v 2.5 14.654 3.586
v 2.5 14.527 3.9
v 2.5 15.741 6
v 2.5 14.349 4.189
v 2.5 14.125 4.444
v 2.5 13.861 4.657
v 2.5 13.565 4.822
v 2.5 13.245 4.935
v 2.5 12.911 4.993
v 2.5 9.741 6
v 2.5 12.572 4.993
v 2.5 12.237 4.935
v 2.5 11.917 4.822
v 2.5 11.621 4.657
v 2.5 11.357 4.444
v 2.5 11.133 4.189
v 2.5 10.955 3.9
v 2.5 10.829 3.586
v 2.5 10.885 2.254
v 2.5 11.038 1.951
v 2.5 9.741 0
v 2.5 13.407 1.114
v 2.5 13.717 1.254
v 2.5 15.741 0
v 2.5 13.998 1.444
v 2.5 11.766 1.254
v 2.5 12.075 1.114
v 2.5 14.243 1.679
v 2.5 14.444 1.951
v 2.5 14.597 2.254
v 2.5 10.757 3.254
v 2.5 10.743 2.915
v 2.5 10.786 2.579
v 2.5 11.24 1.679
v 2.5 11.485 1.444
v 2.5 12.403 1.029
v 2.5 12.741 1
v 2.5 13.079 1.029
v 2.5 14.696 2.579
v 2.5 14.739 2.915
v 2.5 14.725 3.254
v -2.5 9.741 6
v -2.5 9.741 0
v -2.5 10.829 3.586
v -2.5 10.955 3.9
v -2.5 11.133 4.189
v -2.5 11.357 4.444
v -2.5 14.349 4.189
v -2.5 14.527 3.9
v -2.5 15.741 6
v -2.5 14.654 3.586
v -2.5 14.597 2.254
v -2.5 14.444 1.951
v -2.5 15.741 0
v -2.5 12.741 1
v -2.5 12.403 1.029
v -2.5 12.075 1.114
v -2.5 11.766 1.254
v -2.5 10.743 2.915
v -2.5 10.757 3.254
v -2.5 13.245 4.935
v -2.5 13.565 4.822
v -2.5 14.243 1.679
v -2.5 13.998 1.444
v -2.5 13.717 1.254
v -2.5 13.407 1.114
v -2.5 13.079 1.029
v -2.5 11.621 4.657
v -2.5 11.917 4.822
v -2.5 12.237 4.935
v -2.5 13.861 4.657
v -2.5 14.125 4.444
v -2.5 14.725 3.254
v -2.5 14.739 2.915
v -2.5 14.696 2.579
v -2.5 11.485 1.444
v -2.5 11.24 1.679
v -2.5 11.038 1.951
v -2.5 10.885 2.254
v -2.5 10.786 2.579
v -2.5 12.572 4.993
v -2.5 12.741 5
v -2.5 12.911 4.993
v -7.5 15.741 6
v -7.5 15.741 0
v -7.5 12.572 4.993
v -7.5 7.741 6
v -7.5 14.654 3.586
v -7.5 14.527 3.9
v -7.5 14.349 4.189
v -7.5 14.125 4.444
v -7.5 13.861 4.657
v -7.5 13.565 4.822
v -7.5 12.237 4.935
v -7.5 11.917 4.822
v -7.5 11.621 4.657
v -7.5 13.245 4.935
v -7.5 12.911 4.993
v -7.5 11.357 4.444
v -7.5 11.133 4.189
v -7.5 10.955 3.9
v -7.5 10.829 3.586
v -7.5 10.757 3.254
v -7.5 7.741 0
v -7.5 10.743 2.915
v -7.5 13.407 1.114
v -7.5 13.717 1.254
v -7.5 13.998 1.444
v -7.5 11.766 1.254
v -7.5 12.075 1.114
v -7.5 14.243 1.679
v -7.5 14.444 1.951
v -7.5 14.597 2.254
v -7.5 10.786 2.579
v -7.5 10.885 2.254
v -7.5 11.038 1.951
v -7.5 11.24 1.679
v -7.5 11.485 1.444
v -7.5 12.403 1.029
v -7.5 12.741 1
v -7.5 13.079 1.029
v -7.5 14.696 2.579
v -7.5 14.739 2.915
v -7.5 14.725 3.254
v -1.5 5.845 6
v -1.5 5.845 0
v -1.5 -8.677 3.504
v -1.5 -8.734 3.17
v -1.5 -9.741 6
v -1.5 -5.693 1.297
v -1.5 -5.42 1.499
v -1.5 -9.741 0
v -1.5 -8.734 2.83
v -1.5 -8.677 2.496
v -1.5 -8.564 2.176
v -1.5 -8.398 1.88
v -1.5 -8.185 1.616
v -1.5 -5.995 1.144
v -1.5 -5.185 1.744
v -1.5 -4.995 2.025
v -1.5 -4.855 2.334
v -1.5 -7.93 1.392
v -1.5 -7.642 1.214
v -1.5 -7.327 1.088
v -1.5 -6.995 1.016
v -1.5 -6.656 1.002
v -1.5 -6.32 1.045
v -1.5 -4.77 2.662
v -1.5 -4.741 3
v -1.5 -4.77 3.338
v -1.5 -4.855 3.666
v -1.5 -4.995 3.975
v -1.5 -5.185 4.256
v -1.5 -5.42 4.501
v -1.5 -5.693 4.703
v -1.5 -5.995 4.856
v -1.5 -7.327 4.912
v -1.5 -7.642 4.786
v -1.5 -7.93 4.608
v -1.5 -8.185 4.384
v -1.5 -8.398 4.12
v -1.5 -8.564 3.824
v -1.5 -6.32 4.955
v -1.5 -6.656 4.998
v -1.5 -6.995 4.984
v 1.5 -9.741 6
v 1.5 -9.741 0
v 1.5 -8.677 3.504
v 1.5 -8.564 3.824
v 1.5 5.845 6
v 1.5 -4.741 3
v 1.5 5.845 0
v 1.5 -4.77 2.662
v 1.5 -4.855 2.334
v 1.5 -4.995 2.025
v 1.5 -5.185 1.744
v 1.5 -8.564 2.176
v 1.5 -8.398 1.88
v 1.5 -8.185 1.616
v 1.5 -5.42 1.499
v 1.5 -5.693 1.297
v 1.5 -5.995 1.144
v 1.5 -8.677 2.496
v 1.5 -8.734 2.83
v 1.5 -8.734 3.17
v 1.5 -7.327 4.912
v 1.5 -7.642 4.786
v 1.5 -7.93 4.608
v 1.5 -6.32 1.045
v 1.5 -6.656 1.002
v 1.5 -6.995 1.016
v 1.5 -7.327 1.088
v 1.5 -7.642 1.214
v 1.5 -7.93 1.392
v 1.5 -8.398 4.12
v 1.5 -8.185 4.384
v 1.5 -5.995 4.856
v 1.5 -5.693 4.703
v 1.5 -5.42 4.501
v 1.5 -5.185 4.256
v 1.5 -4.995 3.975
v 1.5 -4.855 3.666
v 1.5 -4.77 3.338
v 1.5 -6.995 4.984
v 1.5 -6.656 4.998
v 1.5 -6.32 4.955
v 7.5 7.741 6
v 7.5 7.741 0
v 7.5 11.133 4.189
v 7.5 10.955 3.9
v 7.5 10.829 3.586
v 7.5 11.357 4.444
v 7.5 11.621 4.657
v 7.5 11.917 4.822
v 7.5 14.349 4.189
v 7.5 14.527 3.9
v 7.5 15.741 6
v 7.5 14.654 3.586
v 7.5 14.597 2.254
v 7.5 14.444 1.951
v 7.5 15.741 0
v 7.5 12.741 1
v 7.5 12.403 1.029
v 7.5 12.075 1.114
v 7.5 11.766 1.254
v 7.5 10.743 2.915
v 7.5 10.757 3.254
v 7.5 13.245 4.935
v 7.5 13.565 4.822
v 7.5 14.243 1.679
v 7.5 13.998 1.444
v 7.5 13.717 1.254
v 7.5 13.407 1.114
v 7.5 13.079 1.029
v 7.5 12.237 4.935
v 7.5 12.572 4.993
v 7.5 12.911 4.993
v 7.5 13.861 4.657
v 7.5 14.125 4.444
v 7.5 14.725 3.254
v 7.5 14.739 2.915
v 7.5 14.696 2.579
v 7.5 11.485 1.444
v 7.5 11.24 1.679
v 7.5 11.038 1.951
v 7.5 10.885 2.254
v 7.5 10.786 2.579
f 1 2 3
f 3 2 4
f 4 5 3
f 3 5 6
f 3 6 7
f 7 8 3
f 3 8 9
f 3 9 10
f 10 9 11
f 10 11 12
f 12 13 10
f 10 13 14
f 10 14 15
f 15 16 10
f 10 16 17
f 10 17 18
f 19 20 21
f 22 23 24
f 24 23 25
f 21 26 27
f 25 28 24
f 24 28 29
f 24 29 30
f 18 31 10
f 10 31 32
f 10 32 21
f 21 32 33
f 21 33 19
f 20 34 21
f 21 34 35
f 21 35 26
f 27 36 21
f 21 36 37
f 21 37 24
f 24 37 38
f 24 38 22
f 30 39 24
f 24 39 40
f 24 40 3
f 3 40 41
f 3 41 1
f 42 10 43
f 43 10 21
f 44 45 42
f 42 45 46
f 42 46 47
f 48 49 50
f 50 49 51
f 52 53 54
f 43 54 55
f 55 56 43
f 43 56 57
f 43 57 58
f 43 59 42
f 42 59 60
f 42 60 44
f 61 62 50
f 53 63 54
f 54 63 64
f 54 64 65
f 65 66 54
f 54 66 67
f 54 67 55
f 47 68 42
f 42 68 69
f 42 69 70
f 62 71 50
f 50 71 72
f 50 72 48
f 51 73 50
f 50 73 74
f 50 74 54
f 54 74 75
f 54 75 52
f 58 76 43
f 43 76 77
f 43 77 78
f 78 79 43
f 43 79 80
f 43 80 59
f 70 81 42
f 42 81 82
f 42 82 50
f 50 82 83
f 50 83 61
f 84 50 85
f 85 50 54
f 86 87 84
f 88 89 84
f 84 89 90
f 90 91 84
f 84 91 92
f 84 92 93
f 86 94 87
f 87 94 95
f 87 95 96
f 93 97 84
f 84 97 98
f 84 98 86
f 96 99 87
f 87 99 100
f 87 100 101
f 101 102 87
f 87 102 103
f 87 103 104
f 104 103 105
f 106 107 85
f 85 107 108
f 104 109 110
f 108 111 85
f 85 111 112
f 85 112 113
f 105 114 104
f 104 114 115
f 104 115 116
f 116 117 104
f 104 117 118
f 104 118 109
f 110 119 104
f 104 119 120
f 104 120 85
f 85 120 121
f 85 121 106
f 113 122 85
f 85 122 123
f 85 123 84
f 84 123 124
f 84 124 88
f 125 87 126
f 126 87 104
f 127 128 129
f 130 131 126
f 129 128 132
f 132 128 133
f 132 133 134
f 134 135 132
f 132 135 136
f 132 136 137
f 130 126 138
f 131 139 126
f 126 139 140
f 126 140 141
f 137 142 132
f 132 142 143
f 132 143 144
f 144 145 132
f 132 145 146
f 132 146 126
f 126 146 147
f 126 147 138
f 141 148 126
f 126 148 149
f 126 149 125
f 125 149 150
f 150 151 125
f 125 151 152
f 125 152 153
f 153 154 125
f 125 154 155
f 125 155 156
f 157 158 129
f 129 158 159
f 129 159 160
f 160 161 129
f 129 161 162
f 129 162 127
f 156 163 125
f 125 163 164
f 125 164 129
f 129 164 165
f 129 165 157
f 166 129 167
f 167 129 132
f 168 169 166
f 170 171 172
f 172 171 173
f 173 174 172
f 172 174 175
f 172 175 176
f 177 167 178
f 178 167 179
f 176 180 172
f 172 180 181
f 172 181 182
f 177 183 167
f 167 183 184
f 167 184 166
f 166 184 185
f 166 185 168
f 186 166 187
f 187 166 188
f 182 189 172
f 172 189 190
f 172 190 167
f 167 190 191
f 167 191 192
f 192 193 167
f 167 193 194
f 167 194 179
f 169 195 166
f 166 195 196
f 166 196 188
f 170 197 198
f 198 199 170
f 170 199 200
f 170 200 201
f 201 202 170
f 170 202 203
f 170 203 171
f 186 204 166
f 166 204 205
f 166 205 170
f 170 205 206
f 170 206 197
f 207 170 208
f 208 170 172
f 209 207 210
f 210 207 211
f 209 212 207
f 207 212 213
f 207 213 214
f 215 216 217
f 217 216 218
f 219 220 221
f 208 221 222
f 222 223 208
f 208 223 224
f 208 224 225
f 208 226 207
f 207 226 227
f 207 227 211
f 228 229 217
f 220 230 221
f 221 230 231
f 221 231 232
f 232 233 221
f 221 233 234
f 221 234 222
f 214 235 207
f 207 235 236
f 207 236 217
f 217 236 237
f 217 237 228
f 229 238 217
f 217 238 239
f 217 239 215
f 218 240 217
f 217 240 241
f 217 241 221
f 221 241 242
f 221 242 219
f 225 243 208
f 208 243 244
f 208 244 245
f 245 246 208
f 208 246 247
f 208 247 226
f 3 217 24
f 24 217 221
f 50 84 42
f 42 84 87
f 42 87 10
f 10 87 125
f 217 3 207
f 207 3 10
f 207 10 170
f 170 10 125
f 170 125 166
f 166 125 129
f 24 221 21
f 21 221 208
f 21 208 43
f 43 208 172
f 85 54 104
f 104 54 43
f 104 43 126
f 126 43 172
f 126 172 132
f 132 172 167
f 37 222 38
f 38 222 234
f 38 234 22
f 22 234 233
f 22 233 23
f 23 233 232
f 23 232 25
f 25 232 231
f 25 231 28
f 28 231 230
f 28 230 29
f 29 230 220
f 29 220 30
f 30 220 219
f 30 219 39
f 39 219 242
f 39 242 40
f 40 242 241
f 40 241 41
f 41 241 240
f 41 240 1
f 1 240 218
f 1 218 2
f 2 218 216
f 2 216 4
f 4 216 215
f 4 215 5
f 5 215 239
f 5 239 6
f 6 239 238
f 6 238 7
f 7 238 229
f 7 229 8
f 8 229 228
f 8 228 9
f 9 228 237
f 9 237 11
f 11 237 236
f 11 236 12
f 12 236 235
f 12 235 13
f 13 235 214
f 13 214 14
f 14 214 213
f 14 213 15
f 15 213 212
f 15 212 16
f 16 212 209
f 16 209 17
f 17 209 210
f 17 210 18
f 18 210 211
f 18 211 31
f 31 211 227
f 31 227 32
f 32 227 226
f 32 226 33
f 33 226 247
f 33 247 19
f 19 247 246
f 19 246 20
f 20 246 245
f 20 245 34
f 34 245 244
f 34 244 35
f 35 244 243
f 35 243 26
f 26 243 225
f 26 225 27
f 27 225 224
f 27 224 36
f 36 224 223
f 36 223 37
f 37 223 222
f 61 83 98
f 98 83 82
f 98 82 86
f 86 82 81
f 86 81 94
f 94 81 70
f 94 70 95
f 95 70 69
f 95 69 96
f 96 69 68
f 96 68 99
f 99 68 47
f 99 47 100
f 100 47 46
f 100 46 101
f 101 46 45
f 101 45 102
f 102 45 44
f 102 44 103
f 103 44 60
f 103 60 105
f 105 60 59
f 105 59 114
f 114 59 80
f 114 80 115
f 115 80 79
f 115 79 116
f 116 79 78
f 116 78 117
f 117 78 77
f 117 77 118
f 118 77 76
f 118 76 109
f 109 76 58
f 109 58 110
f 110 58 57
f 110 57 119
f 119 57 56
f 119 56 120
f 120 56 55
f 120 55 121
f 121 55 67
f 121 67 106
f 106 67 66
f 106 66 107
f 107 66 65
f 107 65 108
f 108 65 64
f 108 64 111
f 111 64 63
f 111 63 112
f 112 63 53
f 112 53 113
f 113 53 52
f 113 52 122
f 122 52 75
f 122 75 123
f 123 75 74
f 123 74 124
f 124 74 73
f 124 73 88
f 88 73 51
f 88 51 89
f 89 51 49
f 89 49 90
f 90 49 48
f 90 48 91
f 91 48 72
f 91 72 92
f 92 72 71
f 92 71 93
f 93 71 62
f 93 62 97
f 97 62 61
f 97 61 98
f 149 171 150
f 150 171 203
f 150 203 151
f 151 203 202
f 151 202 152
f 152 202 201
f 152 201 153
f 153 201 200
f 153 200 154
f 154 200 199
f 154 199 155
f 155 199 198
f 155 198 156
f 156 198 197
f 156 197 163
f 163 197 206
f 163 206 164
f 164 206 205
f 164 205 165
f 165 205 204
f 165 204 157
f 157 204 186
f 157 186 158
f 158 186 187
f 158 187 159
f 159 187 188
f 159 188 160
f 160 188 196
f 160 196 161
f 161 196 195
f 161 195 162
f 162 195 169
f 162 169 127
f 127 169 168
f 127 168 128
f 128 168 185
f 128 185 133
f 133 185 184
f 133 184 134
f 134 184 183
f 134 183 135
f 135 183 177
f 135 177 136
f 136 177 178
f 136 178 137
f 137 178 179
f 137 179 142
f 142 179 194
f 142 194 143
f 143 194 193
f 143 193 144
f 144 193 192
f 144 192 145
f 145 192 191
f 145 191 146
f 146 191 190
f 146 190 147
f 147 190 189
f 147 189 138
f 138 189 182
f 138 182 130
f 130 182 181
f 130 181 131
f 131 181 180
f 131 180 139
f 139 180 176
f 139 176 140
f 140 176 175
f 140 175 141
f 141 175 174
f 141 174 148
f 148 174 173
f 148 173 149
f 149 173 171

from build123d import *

# Parameters (mm, degrees)
BOSS_EXTRU_1_DEPTH      = 6
ENL_V_MAT_EXTRU_1_REACH = 24.556
ESQUISSE2_R             = 2
ESQUISSE3_R             = 2
ENL_V_MAT_EXTRU_2_DEPTH = 3


with BuildPart() as part:
    # Esquisse1 → Boss.-Extru.1 (new body)
    with BuildSketch(Plane.XY):
        Polygon((-7.5, 7.741189715), (-1.5, 5.844713829), (-1.5, -9.741189715), (1.5, -9.741189715), (1.5, 5.844713829), (7.5, 7.741189715), (7.5, 15.741189715), (2.5, 15.741189715), (2.5, 9.741189715), (-2.5, 9.741189715), (-2.5, 15.741189715), (-7.5, 15.741189715), align=None)
    extrude(amount=BOSS_EXTRU_1_DEPTH)

    # Enlèv. mat.-Extru.1: up to this face of the body (flat: up to its plane)
    enl_v_mat_extru_1_end = Plane(part.part.faces().sort_by_distance((-7.5, 11.741189715, 3))[0])
    # Esquisse2 → Enlèv. mat.-Extru.1 (cut, up to the picked face)
    with BuildSketch(Plane(origin=(7.5, 0, 0), x_dir=(0, 0, -1), z_dir=(1, 0, 0)), mode=Mode.PRIVATE) as enl_v_mat_extru_1_sk1:
        with Locations((-3, 12.741189715)):
            Circle(ESQUISSE2_R)
    enl_v_mat_extru_1_tool1 = split(extrude(enl_v_mat_extru_1_sk1.sketch, amount=-ENL_V_MAT_EXTRU_1_REACH, mode=Mode.PRIVATE), bisect_by=enl_v_mat_extru_1_end, keep=Keep.BOTH, mode=Mode.PRIVATE)
    add(enl_v_mat_extru_1_tool1.solids().sort_by(Axis((7.5, 12.74119, 3), (-1, 0, 0)))[0], mode=Mode.SUBTRACT)

    # Esquisse3 → Enlèv. mat.-Extru.2 (cut)
    with BuildSketch(Plane(origin=(1.5, 0, 0), x_dir=(0, 0, -1), z_dir=(1, 0, 0))):
        with Locations(Location((-3, -6.741189715, 0), (0, 0, 90))):
            Circle(ESQUISSE3_R)
    extrude(amount=-ENL_V_MAT_EXTRU_2_DEPTH, mode=Mode.SUBTRACT)


solid = part.part
